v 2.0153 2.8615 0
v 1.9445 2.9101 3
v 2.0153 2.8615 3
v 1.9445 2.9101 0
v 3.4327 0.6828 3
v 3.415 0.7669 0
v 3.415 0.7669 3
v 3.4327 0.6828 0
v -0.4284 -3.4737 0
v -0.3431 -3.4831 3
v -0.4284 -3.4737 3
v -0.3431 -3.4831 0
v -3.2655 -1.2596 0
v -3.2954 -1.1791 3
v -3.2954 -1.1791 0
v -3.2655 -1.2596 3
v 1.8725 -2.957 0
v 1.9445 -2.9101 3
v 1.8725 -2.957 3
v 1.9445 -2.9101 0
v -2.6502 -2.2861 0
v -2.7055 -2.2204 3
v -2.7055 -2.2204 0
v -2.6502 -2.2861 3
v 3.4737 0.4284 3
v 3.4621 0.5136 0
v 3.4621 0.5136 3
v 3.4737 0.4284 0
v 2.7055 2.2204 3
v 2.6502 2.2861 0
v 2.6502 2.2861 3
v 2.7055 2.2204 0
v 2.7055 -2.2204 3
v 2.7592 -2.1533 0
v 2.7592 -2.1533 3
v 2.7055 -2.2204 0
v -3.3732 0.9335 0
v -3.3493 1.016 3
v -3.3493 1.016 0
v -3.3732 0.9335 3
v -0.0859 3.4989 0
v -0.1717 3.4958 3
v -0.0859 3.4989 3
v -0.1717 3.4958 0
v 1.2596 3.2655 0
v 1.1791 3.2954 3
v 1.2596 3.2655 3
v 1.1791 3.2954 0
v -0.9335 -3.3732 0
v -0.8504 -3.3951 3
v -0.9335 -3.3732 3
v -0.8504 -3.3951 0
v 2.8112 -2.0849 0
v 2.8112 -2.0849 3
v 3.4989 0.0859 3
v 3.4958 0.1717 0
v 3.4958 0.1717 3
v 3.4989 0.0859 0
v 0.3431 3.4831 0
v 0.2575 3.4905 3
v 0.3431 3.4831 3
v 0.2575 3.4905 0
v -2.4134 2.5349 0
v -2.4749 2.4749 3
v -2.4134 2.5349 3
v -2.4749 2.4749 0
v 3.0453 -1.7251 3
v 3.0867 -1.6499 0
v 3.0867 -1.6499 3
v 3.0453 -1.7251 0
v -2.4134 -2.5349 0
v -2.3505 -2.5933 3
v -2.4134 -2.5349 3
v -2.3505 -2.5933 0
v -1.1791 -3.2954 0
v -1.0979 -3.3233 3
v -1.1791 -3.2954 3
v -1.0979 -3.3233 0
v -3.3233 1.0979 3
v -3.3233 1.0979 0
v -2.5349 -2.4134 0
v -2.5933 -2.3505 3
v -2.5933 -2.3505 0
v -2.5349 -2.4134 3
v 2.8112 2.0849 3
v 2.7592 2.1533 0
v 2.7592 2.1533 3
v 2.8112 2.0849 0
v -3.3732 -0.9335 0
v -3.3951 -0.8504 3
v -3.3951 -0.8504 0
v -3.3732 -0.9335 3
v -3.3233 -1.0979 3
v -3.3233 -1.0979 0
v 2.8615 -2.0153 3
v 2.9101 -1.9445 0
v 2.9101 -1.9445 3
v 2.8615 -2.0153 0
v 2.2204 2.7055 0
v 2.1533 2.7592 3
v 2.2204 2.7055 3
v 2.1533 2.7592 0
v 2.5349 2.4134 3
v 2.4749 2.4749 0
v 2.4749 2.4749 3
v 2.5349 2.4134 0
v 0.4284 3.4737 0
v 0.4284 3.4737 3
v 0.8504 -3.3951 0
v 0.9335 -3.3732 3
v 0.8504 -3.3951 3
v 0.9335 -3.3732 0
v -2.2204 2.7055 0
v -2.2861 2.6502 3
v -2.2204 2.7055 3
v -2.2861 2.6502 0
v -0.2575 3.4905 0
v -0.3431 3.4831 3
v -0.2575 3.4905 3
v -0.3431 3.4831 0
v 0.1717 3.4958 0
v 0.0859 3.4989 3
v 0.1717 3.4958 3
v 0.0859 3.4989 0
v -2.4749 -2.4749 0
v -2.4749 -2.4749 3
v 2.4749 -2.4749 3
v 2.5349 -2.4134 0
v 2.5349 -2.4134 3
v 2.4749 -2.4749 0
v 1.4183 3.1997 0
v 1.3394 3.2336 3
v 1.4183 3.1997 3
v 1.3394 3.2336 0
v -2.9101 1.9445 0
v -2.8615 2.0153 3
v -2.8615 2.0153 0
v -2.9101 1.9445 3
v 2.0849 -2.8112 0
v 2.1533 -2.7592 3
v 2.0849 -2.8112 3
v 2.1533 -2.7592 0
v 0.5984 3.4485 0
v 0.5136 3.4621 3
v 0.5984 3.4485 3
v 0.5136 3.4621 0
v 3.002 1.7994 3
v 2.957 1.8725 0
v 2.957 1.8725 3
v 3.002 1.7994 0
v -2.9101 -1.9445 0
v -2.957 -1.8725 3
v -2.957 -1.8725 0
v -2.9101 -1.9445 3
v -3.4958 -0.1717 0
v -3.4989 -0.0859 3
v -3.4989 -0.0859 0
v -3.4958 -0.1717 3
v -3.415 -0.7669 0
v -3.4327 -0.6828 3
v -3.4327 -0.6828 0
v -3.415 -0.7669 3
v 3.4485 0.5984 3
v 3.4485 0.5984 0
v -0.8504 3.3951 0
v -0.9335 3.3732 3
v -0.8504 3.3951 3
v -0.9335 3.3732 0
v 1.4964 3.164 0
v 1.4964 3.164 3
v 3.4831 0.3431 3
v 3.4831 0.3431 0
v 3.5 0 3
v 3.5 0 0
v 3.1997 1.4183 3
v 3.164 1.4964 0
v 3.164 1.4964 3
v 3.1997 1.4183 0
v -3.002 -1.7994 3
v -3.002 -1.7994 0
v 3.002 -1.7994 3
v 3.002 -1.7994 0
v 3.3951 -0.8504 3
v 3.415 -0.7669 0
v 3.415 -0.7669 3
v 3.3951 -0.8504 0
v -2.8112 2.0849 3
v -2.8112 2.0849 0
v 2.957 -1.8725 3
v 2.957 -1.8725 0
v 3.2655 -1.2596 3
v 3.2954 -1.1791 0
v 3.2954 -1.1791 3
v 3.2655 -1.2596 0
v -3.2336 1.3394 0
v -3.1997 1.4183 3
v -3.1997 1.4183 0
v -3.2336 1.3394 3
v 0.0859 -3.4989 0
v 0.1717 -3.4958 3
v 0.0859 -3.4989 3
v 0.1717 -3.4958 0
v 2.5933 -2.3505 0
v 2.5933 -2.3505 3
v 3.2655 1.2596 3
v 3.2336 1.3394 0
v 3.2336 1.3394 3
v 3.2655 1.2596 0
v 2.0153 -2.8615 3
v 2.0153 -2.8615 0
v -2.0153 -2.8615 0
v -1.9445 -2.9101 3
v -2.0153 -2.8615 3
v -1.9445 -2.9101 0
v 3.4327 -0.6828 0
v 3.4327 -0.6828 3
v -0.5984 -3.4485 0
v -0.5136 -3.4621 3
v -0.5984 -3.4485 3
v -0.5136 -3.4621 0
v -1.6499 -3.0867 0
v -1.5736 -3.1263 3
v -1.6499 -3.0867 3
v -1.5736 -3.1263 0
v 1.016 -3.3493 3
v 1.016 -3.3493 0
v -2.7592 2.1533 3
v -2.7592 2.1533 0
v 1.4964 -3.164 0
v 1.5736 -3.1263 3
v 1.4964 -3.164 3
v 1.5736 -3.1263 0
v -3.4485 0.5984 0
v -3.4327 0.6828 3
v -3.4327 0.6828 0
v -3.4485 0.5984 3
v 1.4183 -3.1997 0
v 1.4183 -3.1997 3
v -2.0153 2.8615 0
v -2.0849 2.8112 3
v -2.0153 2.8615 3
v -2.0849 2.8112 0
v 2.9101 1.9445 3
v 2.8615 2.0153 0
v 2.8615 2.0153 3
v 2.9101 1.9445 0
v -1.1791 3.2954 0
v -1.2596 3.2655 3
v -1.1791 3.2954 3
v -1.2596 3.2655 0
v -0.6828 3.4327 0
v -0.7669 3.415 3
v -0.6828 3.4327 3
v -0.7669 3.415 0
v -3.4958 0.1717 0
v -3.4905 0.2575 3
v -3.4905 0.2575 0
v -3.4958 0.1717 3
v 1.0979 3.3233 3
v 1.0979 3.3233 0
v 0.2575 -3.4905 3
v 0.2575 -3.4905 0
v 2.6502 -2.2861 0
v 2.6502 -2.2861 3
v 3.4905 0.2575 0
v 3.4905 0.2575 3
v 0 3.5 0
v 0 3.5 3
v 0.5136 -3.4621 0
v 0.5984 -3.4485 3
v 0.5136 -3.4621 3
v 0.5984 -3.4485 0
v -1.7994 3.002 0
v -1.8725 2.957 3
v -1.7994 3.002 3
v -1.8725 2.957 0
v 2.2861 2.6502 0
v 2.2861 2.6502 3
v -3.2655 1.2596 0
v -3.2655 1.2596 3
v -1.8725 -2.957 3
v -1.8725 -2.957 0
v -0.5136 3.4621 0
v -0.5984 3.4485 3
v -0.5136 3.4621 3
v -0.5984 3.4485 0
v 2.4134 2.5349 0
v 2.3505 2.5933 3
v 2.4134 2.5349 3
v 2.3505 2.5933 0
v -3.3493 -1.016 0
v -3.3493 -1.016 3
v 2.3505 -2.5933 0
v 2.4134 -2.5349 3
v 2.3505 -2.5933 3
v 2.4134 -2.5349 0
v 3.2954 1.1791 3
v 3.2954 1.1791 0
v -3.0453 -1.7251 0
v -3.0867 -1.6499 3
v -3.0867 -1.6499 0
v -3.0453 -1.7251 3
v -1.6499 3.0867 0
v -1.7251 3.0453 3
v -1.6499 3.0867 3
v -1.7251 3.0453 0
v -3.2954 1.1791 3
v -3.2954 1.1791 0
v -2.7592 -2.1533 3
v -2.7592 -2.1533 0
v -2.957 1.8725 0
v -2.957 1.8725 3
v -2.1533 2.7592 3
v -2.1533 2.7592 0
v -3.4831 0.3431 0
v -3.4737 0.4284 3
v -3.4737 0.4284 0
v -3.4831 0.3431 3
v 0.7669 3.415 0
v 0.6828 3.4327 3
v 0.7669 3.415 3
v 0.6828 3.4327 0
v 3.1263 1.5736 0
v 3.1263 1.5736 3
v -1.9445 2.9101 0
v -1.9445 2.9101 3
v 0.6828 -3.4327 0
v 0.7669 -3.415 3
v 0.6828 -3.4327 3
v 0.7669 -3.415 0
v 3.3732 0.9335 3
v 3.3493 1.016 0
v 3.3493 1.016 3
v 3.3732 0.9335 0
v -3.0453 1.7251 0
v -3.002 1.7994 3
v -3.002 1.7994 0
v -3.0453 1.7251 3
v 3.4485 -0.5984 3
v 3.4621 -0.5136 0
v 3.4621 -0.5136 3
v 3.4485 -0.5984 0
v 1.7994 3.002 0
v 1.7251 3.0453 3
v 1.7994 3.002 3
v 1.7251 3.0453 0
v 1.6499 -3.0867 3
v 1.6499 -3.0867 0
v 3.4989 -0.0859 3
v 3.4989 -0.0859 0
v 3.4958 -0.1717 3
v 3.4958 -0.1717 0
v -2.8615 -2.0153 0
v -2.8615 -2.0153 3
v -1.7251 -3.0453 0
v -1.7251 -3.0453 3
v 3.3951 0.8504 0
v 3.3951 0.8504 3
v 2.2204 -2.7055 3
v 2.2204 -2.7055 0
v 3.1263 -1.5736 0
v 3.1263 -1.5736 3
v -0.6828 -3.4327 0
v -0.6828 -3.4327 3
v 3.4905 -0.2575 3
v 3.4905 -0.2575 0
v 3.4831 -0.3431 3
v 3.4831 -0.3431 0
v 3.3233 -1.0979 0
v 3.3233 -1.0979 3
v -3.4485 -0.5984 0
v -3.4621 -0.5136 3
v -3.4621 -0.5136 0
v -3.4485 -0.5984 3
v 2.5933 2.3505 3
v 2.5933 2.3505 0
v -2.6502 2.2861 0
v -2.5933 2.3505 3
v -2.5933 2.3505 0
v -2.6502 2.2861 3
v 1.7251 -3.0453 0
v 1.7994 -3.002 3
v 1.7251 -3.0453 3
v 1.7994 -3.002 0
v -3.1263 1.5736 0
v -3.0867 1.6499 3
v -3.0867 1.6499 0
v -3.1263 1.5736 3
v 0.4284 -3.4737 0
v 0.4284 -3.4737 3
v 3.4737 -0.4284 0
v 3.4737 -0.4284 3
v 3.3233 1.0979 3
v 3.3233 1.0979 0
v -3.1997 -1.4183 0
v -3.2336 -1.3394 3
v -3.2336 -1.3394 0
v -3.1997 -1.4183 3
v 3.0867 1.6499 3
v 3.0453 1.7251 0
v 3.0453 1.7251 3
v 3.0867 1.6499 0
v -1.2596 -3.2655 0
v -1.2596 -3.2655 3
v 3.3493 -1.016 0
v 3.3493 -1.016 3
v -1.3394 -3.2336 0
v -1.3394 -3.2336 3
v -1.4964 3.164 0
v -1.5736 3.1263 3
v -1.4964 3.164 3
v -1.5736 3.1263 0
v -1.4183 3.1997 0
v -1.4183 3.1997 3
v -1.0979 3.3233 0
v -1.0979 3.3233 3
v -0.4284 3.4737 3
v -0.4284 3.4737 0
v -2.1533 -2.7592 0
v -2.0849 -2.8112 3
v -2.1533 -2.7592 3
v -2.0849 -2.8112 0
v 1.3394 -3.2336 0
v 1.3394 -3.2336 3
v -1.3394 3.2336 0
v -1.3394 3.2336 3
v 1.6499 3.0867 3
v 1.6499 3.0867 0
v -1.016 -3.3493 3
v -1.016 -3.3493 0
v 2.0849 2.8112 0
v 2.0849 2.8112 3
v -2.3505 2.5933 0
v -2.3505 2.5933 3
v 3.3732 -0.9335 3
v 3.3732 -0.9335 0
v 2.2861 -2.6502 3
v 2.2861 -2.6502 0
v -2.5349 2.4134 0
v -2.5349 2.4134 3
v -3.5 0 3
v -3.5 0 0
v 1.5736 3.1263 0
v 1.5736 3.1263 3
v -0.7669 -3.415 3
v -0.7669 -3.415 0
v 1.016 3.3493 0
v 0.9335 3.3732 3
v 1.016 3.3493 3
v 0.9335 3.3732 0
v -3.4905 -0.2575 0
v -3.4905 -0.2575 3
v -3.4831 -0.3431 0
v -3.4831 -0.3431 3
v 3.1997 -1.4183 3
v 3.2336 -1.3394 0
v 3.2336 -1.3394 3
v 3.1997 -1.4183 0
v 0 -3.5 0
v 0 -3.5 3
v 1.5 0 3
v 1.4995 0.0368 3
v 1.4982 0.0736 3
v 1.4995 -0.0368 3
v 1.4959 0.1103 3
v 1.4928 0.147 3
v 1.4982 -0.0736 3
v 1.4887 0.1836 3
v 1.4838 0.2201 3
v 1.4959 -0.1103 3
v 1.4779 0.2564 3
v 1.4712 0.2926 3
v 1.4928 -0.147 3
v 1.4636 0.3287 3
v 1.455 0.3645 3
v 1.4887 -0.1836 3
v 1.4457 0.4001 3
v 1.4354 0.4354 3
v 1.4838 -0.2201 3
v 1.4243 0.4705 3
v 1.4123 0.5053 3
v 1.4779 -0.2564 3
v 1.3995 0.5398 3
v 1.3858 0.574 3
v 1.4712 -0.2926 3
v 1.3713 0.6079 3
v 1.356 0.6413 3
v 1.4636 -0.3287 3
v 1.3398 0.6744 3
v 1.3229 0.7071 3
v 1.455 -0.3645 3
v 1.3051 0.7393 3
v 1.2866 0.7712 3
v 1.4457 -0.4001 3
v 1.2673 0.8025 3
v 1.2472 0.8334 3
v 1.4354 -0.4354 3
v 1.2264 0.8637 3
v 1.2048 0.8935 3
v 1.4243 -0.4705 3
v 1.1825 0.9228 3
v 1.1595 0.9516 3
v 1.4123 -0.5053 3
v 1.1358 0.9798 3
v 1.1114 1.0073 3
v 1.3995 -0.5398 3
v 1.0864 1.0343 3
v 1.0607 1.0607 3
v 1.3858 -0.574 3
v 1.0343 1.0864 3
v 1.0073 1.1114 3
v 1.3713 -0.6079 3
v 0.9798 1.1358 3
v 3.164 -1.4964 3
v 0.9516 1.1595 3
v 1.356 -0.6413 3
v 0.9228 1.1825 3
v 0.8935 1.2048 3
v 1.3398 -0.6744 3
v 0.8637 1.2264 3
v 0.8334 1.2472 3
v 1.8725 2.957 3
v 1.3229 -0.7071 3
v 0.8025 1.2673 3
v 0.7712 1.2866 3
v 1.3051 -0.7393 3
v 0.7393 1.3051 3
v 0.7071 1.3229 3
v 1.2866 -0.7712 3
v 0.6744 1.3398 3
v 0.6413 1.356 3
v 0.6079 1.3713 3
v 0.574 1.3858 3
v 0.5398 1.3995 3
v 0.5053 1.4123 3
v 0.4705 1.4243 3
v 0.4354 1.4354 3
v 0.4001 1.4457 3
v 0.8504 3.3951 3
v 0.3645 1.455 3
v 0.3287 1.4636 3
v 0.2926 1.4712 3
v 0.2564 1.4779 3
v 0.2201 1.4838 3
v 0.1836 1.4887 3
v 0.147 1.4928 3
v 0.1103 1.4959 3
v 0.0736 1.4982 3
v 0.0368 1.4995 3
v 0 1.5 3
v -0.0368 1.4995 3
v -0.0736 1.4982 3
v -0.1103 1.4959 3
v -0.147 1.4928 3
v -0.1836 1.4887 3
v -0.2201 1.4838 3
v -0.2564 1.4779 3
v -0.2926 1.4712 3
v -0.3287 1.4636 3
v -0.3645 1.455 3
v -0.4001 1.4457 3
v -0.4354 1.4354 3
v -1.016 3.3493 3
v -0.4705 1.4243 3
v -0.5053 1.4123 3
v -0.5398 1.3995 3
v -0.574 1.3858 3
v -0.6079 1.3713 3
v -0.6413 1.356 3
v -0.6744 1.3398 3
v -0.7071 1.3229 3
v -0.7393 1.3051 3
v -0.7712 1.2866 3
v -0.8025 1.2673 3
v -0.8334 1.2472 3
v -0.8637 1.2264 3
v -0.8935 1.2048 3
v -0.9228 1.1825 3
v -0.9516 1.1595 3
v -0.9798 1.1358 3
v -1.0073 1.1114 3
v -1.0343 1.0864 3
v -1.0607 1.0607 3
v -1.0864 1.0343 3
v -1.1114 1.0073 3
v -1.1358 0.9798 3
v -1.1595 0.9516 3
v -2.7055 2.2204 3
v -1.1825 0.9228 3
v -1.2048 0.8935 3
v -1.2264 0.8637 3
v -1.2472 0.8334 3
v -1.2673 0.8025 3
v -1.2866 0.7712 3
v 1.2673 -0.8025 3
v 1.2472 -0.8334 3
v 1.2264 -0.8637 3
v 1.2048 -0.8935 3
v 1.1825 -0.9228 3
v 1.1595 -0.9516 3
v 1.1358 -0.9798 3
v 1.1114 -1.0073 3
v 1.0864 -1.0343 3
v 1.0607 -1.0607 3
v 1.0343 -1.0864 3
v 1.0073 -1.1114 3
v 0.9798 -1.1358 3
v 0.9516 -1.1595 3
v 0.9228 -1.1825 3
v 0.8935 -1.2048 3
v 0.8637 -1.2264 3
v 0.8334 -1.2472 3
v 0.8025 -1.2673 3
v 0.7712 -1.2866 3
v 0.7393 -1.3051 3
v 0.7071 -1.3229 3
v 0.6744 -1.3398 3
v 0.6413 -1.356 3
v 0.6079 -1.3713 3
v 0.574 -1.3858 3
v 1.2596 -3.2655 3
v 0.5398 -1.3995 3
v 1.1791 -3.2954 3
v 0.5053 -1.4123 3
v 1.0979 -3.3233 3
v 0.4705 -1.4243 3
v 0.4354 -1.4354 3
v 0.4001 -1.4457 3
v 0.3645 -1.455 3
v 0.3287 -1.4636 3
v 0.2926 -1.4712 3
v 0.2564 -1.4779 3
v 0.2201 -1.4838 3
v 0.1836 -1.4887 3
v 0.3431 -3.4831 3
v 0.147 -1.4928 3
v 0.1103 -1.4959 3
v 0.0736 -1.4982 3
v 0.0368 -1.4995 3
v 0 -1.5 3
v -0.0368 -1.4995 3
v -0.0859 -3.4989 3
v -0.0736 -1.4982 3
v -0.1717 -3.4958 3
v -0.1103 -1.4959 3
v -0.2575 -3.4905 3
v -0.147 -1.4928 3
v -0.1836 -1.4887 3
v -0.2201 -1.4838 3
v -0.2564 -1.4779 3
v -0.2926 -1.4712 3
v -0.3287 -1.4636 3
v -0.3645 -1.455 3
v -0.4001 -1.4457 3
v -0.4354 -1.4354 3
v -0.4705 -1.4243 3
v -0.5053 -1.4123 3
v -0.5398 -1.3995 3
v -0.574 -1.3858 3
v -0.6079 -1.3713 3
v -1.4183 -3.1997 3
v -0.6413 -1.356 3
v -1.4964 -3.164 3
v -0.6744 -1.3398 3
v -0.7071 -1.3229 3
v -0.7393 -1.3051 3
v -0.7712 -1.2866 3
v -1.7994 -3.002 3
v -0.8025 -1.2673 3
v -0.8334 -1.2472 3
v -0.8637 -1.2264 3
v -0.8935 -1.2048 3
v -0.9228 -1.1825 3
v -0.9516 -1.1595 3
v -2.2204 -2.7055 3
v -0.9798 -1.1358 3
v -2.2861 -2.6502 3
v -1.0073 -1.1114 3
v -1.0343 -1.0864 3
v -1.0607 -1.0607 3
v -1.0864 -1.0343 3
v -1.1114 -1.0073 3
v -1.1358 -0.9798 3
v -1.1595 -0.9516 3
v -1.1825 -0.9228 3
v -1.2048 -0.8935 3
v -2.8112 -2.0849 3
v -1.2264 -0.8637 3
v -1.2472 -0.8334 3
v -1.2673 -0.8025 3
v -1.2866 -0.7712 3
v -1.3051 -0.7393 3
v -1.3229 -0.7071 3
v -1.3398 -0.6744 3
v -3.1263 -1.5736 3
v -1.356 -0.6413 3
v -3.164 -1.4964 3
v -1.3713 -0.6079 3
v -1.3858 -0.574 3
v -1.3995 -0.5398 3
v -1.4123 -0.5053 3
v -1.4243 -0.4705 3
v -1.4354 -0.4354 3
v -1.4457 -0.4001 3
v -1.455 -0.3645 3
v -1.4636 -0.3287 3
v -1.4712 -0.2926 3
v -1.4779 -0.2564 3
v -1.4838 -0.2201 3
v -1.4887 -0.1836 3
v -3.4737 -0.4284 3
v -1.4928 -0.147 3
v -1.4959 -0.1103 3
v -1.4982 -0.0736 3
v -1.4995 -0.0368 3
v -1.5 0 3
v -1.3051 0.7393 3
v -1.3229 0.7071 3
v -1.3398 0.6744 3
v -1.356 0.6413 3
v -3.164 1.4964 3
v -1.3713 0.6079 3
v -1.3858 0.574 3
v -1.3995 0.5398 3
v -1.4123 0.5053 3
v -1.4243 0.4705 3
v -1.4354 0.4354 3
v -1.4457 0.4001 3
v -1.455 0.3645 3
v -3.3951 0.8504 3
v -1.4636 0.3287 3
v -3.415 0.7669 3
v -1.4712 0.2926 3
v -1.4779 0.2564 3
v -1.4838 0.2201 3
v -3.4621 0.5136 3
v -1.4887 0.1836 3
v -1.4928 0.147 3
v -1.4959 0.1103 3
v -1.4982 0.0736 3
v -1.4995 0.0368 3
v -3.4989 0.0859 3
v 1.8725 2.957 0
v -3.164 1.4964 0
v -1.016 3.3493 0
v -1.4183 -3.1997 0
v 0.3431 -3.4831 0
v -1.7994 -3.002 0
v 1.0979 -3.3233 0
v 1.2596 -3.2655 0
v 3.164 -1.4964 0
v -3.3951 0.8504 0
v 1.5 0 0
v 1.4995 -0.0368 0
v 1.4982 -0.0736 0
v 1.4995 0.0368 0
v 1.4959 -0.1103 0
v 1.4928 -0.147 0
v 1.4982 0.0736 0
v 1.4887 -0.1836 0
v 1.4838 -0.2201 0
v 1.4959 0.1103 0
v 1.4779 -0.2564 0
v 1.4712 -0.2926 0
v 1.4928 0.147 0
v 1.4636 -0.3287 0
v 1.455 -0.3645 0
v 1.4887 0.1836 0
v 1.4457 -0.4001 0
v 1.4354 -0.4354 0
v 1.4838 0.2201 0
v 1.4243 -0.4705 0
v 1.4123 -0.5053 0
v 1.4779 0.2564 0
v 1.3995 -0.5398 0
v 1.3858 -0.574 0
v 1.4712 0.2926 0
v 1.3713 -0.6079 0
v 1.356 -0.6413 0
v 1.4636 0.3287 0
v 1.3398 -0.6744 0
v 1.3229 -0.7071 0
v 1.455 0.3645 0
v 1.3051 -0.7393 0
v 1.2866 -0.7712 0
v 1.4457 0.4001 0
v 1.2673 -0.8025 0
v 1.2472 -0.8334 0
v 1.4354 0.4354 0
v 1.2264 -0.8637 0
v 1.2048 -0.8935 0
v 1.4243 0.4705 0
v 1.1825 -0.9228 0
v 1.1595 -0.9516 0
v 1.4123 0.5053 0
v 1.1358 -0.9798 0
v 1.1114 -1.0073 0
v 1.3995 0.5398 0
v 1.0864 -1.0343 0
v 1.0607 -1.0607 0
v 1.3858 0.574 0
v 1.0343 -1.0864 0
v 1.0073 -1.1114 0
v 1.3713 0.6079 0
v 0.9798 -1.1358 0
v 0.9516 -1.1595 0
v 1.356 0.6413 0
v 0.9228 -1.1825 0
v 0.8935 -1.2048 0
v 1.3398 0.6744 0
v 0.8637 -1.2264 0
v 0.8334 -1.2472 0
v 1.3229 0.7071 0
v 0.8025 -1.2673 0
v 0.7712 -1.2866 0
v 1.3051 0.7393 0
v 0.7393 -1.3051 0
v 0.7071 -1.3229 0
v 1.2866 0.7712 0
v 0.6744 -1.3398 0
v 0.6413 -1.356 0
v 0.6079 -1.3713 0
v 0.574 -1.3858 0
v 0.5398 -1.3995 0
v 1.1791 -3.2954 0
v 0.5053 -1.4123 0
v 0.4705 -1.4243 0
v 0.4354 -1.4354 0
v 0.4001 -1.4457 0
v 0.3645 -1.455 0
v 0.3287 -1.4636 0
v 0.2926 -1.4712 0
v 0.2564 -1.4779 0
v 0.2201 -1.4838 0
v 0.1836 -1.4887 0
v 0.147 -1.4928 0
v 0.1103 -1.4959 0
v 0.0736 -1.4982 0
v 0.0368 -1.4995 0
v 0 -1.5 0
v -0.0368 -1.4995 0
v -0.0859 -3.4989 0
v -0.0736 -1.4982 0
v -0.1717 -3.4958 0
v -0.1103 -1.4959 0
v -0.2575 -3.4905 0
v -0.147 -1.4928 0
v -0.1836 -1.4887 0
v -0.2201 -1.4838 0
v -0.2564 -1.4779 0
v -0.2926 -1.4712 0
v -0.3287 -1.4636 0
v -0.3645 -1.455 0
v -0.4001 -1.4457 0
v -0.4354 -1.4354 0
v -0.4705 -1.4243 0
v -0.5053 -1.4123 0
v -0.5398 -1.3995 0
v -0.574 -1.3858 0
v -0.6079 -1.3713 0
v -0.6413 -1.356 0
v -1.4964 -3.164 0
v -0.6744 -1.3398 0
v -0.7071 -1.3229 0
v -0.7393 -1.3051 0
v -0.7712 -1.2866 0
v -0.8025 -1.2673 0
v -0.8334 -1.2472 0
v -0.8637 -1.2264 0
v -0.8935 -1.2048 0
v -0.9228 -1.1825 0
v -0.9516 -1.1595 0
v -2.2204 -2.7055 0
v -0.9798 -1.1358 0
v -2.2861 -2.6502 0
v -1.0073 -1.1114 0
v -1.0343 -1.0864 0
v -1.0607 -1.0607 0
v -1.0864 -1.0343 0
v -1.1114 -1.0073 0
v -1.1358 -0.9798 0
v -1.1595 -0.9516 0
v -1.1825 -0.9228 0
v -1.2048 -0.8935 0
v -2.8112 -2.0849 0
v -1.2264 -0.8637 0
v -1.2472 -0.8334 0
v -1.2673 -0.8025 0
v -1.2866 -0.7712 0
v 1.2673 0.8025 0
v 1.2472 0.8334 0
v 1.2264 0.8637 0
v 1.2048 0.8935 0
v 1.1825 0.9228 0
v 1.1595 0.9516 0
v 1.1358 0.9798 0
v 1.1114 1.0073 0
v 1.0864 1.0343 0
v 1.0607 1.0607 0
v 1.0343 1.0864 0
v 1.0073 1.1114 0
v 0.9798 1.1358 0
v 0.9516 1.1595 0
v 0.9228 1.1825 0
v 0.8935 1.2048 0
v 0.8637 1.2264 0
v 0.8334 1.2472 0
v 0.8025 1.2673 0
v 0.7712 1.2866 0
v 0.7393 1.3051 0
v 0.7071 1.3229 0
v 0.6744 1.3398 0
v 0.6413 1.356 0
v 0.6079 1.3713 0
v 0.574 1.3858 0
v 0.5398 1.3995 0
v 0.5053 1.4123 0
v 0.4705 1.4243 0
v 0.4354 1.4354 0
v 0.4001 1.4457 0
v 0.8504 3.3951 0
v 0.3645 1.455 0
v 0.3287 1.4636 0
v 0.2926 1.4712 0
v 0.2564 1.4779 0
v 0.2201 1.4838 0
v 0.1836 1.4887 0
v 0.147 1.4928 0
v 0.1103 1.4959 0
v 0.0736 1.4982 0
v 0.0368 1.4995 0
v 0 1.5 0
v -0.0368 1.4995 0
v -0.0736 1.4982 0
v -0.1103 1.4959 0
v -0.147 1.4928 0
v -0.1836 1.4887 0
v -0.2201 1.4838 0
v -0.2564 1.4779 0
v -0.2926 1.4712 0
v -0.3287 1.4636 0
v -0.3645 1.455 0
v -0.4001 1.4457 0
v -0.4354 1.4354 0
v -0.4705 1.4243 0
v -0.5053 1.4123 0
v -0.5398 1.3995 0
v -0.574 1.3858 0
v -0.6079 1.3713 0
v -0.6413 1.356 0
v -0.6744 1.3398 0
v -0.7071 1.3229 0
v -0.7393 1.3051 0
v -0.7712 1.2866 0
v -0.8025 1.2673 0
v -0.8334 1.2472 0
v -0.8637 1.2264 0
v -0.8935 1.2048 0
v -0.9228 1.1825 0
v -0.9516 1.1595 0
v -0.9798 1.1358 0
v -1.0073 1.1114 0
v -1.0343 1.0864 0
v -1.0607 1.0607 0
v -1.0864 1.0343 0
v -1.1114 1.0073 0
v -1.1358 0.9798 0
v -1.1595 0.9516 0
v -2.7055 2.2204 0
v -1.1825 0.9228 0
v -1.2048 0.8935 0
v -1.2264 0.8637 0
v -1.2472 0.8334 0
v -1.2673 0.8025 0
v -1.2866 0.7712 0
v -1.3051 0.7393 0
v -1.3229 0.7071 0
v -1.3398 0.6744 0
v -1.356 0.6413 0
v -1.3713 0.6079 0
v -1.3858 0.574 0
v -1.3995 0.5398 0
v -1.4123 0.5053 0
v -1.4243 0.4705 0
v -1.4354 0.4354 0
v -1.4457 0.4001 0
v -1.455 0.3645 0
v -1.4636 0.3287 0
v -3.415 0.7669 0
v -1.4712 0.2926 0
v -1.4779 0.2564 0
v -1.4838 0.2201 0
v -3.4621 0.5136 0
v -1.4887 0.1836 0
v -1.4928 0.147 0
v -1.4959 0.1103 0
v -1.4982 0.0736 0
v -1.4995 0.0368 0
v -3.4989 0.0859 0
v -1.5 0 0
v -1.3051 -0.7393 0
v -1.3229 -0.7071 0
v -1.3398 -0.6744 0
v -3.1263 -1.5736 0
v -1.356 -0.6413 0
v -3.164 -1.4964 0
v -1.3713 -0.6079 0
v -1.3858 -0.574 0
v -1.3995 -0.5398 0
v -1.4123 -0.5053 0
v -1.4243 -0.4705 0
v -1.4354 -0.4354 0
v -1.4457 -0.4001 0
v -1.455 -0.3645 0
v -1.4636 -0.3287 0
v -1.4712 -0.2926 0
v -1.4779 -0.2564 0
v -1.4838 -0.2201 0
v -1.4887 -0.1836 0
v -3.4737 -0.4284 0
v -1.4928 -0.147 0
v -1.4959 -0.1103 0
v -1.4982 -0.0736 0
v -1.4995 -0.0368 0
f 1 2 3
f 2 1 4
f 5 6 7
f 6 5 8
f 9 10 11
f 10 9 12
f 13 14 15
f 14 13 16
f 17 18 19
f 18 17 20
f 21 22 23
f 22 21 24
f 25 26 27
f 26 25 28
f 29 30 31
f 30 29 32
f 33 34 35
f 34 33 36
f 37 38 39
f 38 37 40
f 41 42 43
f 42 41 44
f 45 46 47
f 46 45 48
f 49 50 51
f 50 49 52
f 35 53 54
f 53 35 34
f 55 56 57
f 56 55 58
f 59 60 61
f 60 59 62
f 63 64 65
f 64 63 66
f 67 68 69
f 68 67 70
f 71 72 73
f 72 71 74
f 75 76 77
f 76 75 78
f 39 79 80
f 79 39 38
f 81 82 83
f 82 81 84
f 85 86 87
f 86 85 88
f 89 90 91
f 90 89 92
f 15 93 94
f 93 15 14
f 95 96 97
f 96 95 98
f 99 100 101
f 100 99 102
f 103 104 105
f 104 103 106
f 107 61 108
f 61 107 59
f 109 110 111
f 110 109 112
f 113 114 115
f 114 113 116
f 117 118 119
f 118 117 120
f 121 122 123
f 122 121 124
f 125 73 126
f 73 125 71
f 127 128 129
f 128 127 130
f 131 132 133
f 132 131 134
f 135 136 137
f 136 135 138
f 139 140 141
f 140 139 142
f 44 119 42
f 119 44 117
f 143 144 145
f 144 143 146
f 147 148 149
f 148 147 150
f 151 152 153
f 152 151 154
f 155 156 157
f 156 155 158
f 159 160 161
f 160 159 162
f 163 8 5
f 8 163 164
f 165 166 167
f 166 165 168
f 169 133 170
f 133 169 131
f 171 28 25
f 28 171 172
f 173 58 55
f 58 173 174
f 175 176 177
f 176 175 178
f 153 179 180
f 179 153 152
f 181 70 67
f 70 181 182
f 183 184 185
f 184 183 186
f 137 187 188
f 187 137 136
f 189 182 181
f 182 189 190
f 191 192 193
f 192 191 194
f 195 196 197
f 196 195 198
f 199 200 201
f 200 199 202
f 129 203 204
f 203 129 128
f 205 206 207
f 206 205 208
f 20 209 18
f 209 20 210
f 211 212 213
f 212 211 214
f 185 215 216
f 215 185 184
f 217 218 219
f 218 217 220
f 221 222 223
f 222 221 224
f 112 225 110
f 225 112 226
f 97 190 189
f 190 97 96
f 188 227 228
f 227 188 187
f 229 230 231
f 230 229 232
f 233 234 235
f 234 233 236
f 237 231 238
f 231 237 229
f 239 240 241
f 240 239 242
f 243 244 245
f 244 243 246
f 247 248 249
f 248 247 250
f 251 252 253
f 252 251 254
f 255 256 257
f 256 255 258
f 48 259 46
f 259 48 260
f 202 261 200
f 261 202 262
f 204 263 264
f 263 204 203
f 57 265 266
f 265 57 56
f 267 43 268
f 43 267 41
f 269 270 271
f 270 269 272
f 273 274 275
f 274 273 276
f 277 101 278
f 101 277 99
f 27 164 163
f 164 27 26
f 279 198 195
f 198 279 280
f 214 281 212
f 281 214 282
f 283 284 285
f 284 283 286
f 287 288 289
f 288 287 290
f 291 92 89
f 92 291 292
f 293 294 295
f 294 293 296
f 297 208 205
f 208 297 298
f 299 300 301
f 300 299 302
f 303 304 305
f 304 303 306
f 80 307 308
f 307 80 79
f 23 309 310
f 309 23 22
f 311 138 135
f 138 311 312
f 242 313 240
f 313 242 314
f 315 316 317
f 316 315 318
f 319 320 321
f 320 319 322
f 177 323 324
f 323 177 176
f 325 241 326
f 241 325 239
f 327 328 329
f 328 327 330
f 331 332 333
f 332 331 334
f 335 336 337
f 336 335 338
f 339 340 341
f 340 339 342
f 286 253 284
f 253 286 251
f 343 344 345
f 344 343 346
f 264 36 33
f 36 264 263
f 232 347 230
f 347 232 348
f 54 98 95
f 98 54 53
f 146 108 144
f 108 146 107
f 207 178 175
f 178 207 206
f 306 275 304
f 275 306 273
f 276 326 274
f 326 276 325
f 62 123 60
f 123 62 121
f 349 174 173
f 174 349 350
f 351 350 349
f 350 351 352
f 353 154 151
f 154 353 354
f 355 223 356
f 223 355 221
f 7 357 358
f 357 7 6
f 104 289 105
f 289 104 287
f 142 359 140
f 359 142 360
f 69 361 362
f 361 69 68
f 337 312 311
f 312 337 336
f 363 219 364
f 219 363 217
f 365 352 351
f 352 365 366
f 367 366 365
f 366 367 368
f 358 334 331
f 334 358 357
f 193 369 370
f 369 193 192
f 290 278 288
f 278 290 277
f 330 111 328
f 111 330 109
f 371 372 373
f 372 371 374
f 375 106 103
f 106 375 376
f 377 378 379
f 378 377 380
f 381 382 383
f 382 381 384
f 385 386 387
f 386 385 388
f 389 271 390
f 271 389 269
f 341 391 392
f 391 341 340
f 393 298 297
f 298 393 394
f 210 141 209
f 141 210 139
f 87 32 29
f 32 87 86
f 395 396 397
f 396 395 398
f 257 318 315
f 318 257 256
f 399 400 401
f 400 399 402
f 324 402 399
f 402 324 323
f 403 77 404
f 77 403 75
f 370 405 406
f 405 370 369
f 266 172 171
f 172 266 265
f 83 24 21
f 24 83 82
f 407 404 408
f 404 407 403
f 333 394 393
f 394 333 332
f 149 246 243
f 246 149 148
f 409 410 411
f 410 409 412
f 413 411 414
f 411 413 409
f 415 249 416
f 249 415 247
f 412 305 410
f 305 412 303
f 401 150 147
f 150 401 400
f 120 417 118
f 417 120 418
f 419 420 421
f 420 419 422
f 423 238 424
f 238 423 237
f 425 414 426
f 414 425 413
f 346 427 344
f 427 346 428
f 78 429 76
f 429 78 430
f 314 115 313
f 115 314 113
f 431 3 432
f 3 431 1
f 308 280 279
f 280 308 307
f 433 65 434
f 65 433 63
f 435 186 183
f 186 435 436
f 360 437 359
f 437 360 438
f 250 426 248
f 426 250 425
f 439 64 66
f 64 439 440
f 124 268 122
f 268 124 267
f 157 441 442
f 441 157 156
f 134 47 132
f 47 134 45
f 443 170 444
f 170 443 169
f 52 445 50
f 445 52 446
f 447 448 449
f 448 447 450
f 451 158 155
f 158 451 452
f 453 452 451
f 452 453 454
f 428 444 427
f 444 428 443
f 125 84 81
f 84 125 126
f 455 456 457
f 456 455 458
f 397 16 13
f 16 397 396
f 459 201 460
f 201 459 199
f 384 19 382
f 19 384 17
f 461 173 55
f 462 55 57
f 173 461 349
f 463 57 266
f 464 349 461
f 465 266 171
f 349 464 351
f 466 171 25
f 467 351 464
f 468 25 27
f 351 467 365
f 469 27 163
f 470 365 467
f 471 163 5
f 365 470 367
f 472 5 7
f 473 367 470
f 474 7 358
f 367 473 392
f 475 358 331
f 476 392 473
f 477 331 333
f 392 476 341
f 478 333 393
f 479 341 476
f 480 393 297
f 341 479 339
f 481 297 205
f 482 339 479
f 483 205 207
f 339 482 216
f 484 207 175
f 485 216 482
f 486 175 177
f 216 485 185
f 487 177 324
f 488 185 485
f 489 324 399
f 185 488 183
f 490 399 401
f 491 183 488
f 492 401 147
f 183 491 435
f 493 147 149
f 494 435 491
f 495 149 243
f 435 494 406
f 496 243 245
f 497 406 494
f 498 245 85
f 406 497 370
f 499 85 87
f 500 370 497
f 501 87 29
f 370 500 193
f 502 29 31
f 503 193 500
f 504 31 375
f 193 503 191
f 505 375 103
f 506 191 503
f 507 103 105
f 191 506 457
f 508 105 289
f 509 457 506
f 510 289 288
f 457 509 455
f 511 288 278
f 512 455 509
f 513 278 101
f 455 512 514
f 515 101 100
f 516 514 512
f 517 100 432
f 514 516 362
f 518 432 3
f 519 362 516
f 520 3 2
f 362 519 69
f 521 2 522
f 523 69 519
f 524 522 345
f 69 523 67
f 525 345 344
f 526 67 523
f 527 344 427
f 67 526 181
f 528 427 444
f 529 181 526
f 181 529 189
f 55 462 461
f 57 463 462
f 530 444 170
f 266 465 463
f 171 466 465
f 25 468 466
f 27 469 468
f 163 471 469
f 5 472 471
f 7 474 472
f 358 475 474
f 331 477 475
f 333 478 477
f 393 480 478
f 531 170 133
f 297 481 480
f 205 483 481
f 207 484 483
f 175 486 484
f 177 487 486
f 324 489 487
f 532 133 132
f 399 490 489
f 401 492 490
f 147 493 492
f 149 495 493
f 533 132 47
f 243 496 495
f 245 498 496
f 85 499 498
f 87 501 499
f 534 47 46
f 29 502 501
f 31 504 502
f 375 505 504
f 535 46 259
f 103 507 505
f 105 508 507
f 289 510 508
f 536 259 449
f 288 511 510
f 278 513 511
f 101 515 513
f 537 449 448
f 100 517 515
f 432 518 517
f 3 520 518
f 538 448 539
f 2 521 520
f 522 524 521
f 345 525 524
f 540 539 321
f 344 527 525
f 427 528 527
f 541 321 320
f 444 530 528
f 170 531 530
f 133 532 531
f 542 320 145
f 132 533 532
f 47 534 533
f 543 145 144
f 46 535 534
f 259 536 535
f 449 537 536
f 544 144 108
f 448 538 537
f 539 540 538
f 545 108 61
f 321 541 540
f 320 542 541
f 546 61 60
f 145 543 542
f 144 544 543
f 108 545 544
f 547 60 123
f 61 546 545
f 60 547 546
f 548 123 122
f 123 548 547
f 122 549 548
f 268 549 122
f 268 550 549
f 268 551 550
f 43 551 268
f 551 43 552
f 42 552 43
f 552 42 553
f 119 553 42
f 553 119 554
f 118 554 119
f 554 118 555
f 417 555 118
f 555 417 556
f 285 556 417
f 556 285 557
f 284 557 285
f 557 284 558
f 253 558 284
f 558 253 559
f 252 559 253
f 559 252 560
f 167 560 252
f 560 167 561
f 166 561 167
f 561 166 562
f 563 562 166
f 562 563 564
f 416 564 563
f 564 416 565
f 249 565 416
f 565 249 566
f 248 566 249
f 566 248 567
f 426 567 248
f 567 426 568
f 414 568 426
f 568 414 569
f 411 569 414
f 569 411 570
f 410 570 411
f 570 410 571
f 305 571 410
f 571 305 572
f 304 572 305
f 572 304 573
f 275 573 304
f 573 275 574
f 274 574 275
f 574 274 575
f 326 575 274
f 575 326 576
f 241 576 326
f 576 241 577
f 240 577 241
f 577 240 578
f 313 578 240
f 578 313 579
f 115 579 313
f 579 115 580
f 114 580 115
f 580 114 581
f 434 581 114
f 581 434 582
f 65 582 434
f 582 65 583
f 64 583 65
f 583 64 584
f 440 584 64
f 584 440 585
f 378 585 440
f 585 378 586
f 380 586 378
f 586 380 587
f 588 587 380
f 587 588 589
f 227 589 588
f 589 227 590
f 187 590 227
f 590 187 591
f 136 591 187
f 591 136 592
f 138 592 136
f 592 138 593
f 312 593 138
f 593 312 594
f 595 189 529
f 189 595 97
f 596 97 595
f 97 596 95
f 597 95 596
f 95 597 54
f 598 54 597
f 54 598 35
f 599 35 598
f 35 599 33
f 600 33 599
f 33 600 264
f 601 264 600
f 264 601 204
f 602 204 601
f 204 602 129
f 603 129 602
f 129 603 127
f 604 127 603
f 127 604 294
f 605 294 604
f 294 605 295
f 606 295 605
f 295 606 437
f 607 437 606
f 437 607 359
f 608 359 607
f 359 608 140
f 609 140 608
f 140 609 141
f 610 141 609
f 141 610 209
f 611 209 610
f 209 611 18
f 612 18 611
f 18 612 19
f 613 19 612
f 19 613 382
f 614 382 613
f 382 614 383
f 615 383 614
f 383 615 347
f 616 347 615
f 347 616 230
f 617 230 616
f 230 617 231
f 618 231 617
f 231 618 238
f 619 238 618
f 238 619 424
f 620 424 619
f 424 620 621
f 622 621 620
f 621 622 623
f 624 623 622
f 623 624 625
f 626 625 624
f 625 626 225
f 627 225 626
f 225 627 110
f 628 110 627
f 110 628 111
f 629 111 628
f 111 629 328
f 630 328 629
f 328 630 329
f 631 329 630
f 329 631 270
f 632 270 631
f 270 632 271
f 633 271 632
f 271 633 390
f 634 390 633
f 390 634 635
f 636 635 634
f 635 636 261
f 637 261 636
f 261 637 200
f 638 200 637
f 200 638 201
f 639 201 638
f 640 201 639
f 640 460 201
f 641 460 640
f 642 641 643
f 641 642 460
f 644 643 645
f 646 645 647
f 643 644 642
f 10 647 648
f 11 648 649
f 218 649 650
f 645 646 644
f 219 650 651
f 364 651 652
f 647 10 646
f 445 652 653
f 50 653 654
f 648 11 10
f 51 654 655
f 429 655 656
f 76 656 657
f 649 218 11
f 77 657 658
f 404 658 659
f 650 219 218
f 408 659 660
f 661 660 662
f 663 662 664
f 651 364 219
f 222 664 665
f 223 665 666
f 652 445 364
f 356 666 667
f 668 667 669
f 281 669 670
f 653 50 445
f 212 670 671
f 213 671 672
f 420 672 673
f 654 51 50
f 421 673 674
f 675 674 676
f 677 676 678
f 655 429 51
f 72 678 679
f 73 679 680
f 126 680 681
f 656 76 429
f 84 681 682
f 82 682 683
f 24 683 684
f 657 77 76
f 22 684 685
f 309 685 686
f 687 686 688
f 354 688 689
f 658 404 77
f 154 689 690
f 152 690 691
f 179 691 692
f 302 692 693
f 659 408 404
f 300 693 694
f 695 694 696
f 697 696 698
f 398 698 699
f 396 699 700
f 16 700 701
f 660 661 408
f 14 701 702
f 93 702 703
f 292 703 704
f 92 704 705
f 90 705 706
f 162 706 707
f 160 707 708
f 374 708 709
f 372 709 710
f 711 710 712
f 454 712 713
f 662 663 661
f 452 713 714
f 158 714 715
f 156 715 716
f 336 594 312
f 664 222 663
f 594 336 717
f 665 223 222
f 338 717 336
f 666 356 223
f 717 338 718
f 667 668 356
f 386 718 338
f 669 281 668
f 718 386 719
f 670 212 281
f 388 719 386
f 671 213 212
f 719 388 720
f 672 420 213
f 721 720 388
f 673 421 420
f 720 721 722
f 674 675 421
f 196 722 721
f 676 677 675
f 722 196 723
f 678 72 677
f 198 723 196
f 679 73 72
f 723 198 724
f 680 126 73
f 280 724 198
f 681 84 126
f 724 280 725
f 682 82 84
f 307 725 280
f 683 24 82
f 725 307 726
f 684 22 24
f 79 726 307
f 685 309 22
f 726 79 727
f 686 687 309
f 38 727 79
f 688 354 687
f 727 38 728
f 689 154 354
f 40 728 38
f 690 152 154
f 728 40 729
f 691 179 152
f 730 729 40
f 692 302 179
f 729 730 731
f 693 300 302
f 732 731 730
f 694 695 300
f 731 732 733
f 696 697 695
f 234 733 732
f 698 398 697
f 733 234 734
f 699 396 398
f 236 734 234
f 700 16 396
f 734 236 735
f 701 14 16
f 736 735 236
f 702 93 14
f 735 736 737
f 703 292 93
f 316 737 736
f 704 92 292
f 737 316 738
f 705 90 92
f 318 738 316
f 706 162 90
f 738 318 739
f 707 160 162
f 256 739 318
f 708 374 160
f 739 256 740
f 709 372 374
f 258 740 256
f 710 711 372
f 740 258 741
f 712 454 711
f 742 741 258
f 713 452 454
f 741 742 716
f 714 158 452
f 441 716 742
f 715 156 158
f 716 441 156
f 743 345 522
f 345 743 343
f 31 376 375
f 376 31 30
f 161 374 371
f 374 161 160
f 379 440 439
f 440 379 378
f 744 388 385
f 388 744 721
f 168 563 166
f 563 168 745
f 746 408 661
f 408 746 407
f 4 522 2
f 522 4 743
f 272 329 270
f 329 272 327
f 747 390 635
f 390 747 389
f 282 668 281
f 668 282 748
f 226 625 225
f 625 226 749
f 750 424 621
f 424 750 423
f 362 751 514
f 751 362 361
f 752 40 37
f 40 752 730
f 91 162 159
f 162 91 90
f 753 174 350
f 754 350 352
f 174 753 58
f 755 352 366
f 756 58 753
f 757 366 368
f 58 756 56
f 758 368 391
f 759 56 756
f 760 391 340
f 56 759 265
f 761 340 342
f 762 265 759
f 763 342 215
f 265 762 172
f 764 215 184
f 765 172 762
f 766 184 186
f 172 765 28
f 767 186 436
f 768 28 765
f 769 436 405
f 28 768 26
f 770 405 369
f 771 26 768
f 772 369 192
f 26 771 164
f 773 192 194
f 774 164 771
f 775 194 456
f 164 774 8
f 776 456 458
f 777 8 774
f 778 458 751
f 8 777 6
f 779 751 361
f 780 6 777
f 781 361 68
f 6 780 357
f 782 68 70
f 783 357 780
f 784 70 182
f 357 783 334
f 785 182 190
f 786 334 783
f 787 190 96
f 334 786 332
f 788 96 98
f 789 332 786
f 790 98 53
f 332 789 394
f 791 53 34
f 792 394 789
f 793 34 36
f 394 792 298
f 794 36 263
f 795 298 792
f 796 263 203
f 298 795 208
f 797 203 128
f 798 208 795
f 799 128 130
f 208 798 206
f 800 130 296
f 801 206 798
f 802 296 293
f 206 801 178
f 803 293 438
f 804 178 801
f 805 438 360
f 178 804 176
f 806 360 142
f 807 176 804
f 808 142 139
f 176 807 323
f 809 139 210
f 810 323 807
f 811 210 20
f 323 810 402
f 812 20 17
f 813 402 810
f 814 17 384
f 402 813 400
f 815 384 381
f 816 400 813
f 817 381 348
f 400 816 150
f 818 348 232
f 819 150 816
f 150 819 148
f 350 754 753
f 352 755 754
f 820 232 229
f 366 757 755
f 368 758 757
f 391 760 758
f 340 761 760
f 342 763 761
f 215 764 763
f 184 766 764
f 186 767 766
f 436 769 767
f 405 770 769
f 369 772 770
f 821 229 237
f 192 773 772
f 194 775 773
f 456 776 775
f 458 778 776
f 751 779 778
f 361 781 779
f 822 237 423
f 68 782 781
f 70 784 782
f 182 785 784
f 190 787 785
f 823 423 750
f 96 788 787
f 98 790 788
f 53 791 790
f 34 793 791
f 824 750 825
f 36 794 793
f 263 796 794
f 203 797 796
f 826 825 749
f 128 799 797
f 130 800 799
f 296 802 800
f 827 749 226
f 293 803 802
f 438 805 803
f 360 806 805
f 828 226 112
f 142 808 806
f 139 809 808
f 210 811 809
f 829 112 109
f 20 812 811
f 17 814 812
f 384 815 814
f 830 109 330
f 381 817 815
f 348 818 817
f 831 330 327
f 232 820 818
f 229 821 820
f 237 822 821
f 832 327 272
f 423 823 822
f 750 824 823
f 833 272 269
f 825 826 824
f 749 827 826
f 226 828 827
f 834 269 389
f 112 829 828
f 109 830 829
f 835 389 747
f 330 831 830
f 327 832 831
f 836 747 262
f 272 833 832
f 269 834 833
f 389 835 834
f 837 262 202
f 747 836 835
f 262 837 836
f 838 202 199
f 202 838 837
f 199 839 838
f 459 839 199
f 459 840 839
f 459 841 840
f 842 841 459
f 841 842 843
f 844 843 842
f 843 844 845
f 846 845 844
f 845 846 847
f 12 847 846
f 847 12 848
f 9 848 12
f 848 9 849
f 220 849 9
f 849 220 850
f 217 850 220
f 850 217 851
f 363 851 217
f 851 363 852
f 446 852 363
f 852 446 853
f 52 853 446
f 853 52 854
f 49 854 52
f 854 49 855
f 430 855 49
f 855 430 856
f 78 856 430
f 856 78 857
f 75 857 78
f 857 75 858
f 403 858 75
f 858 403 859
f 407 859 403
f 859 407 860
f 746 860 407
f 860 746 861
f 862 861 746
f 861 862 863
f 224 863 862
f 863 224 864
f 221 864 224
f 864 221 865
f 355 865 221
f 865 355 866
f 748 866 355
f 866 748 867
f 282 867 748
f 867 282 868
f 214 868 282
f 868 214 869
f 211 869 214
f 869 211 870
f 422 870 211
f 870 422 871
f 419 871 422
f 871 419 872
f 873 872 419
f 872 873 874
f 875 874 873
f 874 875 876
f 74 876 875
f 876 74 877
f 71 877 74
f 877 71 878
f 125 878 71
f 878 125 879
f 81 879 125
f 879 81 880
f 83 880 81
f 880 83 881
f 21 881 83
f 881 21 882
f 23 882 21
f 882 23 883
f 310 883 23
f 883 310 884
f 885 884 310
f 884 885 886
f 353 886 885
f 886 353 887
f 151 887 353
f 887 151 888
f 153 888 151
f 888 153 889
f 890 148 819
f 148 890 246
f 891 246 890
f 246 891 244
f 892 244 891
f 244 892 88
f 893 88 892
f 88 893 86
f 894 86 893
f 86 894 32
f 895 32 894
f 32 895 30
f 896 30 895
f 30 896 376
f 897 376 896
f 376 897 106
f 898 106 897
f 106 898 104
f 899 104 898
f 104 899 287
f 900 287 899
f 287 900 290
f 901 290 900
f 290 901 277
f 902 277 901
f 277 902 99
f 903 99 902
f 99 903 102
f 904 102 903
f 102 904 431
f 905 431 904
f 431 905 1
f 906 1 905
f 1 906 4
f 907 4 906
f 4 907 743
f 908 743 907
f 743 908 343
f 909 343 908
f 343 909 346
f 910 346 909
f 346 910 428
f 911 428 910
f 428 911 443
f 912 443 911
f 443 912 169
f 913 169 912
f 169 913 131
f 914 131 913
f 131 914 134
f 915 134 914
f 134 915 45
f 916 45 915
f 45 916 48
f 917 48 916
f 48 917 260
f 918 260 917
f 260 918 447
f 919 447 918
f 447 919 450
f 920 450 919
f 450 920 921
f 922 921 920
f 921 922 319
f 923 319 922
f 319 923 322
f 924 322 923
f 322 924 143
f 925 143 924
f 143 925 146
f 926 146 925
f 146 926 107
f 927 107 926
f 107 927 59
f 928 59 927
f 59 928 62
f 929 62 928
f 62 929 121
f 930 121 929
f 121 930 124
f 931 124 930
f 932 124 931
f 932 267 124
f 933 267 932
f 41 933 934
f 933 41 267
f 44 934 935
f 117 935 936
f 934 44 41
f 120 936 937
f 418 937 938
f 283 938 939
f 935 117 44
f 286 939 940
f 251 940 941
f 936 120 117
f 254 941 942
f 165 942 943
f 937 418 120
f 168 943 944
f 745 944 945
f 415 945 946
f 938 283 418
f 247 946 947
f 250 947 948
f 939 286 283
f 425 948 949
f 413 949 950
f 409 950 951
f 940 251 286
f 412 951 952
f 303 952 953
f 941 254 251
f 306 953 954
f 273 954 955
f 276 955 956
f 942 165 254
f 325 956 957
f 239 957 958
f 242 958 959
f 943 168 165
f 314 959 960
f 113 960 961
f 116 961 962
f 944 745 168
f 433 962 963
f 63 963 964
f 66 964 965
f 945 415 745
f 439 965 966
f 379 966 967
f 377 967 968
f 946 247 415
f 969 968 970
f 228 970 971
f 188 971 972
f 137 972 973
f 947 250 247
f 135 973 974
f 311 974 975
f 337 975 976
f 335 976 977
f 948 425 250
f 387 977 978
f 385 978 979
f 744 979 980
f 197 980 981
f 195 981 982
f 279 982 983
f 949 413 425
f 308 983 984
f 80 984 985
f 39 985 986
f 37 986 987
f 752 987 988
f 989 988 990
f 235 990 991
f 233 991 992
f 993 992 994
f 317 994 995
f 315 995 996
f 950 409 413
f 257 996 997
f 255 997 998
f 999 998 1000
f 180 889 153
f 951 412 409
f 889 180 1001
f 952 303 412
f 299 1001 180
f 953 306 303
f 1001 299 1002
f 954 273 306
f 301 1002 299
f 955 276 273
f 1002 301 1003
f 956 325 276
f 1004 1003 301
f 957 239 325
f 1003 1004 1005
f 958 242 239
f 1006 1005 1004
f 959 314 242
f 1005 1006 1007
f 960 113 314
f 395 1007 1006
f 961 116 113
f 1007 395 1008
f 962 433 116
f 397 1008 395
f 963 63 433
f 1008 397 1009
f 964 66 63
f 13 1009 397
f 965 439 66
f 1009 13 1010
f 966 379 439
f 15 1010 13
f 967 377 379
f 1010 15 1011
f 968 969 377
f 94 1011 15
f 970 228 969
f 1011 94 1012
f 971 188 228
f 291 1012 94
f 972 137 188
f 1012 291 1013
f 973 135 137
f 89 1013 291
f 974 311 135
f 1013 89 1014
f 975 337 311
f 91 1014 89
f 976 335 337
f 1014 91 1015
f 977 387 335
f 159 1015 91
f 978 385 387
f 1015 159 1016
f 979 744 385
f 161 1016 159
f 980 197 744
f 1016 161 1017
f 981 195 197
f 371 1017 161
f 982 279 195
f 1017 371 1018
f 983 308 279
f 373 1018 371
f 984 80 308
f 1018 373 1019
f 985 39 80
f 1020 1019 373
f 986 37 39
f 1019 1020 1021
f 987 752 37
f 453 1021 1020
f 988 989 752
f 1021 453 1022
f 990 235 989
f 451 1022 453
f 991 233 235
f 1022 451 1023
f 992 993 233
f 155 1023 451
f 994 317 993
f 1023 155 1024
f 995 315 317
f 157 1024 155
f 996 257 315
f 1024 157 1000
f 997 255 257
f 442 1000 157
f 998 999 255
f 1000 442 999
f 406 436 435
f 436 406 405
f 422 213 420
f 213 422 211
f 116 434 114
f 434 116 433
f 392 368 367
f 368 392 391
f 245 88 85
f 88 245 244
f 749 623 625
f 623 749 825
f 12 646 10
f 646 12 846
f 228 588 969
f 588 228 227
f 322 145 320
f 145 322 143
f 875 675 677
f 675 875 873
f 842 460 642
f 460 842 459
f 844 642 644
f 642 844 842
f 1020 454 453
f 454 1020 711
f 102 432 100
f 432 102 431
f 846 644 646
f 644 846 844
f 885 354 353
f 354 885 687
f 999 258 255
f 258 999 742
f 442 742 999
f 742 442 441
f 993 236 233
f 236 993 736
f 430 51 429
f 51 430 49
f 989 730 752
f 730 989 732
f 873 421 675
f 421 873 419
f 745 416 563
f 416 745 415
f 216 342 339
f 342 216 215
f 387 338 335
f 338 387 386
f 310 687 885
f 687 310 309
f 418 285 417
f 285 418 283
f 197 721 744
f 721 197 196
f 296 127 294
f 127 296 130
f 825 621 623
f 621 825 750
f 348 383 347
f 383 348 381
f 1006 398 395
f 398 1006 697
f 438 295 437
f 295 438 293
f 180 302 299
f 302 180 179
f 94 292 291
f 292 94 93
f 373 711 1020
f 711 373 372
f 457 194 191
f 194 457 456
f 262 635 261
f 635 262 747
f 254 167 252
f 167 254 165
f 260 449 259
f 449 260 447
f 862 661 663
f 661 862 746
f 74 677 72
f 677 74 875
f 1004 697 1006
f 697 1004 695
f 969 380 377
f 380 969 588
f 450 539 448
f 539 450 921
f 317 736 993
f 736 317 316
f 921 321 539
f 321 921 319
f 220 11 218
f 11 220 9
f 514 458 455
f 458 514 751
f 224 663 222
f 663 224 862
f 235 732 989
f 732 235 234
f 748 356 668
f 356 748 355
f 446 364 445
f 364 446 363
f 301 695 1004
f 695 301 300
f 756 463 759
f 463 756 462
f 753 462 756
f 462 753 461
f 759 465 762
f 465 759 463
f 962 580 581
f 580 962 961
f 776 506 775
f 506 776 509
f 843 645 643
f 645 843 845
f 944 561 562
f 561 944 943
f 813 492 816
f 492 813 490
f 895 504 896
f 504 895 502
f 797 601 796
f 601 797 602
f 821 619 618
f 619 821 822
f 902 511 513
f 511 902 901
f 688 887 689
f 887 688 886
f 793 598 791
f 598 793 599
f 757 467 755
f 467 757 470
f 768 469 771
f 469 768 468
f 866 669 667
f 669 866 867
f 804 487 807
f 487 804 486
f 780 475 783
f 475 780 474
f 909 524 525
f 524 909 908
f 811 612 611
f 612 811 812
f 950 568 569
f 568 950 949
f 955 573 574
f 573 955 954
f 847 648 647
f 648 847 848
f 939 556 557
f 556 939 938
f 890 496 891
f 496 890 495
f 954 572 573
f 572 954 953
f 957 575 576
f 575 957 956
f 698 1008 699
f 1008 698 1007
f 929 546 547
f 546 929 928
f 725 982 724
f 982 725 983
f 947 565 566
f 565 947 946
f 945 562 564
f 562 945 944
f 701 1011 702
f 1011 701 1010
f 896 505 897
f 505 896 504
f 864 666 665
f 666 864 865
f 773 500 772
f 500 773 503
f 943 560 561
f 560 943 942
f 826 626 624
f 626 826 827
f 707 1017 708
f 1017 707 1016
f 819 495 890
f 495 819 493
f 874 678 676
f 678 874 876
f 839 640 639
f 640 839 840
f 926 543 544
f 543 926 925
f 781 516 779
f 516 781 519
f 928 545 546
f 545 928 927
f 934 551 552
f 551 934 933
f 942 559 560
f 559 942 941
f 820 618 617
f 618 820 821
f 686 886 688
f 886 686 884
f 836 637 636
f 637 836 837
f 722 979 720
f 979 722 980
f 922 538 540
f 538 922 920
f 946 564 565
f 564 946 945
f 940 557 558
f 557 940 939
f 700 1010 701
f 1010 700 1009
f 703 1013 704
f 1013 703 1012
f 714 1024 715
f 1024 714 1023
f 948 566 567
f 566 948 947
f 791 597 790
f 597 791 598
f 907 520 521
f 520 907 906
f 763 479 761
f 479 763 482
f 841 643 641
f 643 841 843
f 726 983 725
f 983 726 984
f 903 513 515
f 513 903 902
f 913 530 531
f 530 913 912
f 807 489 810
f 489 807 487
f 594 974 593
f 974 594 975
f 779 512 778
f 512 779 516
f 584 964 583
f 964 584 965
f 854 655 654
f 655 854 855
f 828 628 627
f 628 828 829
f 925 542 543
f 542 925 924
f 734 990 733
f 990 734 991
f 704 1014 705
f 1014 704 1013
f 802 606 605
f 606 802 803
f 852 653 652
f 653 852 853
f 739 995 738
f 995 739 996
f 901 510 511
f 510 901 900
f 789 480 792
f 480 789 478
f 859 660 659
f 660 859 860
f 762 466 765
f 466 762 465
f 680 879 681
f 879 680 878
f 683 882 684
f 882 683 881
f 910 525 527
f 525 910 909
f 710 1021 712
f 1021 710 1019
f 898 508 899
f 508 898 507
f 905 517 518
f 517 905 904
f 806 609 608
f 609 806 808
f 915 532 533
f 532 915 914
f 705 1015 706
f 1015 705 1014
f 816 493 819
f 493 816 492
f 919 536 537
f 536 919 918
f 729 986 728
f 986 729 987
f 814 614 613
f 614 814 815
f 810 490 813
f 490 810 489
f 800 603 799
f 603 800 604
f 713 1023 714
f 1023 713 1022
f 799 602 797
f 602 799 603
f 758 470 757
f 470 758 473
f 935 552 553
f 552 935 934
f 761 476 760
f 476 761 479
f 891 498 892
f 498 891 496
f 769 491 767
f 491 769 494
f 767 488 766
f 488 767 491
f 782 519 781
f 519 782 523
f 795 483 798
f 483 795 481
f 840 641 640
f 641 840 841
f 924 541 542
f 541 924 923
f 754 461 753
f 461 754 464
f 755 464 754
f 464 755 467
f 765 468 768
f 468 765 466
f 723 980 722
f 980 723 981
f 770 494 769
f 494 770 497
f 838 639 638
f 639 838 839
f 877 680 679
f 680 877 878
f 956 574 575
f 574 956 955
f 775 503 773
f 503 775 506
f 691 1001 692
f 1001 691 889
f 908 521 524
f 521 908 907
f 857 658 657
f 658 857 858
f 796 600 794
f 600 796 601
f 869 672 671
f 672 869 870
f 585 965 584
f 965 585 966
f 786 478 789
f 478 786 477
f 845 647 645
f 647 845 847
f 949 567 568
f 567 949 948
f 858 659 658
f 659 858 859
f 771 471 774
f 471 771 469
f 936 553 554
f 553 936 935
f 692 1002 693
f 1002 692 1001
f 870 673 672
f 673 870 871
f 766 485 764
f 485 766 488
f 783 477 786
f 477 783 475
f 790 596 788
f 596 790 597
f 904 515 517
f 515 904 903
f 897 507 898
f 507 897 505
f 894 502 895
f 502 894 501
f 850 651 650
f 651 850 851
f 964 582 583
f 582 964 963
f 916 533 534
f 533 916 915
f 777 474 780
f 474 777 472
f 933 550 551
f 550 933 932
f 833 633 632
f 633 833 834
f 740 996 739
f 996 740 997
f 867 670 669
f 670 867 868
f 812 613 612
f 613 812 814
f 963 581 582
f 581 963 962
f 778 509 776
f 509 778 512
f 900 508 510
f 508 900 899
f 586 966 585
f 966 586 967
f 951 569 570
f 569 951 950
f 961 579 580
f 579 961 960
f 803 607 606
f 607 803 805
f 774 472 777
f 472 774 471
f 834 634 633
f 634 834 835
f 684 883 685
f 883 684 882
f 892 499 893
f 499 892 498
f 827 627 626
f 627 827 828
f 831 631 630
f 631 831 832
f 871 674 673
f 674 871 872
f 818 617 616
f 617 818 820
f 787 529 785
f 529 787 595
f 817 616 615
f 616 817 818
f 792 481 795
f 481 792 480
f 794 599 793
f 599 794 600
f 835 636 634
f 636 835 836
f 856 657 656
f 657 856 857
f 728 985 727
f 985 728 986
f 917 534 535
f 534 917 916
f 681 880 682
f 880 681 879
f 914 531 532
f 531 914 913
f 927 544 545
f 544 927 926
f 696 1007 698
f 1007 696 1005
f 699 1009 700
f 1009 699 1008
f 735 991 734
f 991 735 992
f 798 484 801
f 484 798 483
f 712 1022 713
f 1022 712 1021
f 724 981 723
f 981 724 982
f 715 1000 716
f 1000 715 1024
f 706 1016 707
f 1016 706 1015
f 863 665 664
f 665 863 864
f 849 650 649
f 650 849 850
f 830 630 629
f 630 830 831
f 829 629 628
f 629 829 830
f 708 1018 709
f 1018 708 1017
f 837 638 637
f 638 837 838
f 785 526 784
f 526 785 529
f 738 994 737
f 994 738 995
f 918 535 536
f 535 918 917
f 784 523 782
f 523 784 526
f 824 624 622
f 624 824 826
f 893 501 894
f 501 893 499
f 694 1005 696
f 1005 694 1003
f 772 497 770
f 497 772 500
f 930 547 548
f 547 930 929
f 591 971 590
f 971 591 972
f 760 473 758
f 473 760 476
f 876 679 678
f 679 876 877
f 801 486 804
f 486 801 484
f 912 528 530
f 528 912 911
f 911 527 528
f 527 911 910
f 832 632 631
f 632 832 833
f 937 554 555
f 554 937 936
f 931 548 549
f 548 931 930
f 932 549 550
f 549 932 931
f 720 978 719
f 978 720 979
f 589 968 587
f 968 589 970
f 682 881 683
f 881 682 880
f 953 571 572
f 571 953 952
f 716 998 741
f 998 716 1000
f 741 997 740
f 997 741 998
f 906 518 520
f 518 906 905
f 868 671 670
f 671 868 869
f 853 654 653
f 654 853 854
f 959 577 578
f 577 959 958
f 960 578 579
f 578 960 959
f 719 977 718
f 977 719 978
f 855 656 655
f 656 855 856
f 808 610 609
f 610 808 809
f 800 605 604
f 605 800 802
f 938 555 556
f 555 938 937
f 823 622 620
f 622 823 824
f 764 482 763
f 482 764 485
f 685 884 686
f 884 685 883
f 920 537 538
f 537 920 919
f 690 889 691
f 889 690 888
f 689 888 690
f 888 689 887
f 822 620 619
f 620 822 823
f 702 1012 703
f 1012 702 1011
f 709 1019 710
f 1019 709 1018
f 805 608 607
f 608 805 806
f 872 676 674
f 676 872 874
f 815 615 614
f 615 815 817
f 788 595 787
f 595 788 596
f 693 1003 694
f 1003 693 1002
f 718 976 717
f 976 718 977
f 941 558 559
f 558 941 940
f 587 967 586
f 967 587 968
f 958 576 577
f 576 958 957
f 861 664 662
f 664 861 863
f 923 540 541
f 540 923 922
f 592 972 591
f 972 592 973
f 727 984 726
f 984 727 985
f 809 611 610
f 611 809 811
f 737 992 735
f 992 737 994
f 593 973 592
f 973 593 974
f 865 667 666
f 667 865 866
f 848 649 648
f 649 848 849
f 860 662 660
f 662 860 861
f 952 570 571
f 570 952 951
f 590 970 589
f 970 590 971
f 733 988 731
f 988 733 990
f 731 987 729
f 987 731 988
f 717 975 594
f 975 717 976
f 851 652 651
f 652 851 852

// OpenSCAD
$fn=256;

difference() {
  cylinder(d=7,h=3);
  translate([0,0,-0.1]) cylinder(d=3,h=4);
}
